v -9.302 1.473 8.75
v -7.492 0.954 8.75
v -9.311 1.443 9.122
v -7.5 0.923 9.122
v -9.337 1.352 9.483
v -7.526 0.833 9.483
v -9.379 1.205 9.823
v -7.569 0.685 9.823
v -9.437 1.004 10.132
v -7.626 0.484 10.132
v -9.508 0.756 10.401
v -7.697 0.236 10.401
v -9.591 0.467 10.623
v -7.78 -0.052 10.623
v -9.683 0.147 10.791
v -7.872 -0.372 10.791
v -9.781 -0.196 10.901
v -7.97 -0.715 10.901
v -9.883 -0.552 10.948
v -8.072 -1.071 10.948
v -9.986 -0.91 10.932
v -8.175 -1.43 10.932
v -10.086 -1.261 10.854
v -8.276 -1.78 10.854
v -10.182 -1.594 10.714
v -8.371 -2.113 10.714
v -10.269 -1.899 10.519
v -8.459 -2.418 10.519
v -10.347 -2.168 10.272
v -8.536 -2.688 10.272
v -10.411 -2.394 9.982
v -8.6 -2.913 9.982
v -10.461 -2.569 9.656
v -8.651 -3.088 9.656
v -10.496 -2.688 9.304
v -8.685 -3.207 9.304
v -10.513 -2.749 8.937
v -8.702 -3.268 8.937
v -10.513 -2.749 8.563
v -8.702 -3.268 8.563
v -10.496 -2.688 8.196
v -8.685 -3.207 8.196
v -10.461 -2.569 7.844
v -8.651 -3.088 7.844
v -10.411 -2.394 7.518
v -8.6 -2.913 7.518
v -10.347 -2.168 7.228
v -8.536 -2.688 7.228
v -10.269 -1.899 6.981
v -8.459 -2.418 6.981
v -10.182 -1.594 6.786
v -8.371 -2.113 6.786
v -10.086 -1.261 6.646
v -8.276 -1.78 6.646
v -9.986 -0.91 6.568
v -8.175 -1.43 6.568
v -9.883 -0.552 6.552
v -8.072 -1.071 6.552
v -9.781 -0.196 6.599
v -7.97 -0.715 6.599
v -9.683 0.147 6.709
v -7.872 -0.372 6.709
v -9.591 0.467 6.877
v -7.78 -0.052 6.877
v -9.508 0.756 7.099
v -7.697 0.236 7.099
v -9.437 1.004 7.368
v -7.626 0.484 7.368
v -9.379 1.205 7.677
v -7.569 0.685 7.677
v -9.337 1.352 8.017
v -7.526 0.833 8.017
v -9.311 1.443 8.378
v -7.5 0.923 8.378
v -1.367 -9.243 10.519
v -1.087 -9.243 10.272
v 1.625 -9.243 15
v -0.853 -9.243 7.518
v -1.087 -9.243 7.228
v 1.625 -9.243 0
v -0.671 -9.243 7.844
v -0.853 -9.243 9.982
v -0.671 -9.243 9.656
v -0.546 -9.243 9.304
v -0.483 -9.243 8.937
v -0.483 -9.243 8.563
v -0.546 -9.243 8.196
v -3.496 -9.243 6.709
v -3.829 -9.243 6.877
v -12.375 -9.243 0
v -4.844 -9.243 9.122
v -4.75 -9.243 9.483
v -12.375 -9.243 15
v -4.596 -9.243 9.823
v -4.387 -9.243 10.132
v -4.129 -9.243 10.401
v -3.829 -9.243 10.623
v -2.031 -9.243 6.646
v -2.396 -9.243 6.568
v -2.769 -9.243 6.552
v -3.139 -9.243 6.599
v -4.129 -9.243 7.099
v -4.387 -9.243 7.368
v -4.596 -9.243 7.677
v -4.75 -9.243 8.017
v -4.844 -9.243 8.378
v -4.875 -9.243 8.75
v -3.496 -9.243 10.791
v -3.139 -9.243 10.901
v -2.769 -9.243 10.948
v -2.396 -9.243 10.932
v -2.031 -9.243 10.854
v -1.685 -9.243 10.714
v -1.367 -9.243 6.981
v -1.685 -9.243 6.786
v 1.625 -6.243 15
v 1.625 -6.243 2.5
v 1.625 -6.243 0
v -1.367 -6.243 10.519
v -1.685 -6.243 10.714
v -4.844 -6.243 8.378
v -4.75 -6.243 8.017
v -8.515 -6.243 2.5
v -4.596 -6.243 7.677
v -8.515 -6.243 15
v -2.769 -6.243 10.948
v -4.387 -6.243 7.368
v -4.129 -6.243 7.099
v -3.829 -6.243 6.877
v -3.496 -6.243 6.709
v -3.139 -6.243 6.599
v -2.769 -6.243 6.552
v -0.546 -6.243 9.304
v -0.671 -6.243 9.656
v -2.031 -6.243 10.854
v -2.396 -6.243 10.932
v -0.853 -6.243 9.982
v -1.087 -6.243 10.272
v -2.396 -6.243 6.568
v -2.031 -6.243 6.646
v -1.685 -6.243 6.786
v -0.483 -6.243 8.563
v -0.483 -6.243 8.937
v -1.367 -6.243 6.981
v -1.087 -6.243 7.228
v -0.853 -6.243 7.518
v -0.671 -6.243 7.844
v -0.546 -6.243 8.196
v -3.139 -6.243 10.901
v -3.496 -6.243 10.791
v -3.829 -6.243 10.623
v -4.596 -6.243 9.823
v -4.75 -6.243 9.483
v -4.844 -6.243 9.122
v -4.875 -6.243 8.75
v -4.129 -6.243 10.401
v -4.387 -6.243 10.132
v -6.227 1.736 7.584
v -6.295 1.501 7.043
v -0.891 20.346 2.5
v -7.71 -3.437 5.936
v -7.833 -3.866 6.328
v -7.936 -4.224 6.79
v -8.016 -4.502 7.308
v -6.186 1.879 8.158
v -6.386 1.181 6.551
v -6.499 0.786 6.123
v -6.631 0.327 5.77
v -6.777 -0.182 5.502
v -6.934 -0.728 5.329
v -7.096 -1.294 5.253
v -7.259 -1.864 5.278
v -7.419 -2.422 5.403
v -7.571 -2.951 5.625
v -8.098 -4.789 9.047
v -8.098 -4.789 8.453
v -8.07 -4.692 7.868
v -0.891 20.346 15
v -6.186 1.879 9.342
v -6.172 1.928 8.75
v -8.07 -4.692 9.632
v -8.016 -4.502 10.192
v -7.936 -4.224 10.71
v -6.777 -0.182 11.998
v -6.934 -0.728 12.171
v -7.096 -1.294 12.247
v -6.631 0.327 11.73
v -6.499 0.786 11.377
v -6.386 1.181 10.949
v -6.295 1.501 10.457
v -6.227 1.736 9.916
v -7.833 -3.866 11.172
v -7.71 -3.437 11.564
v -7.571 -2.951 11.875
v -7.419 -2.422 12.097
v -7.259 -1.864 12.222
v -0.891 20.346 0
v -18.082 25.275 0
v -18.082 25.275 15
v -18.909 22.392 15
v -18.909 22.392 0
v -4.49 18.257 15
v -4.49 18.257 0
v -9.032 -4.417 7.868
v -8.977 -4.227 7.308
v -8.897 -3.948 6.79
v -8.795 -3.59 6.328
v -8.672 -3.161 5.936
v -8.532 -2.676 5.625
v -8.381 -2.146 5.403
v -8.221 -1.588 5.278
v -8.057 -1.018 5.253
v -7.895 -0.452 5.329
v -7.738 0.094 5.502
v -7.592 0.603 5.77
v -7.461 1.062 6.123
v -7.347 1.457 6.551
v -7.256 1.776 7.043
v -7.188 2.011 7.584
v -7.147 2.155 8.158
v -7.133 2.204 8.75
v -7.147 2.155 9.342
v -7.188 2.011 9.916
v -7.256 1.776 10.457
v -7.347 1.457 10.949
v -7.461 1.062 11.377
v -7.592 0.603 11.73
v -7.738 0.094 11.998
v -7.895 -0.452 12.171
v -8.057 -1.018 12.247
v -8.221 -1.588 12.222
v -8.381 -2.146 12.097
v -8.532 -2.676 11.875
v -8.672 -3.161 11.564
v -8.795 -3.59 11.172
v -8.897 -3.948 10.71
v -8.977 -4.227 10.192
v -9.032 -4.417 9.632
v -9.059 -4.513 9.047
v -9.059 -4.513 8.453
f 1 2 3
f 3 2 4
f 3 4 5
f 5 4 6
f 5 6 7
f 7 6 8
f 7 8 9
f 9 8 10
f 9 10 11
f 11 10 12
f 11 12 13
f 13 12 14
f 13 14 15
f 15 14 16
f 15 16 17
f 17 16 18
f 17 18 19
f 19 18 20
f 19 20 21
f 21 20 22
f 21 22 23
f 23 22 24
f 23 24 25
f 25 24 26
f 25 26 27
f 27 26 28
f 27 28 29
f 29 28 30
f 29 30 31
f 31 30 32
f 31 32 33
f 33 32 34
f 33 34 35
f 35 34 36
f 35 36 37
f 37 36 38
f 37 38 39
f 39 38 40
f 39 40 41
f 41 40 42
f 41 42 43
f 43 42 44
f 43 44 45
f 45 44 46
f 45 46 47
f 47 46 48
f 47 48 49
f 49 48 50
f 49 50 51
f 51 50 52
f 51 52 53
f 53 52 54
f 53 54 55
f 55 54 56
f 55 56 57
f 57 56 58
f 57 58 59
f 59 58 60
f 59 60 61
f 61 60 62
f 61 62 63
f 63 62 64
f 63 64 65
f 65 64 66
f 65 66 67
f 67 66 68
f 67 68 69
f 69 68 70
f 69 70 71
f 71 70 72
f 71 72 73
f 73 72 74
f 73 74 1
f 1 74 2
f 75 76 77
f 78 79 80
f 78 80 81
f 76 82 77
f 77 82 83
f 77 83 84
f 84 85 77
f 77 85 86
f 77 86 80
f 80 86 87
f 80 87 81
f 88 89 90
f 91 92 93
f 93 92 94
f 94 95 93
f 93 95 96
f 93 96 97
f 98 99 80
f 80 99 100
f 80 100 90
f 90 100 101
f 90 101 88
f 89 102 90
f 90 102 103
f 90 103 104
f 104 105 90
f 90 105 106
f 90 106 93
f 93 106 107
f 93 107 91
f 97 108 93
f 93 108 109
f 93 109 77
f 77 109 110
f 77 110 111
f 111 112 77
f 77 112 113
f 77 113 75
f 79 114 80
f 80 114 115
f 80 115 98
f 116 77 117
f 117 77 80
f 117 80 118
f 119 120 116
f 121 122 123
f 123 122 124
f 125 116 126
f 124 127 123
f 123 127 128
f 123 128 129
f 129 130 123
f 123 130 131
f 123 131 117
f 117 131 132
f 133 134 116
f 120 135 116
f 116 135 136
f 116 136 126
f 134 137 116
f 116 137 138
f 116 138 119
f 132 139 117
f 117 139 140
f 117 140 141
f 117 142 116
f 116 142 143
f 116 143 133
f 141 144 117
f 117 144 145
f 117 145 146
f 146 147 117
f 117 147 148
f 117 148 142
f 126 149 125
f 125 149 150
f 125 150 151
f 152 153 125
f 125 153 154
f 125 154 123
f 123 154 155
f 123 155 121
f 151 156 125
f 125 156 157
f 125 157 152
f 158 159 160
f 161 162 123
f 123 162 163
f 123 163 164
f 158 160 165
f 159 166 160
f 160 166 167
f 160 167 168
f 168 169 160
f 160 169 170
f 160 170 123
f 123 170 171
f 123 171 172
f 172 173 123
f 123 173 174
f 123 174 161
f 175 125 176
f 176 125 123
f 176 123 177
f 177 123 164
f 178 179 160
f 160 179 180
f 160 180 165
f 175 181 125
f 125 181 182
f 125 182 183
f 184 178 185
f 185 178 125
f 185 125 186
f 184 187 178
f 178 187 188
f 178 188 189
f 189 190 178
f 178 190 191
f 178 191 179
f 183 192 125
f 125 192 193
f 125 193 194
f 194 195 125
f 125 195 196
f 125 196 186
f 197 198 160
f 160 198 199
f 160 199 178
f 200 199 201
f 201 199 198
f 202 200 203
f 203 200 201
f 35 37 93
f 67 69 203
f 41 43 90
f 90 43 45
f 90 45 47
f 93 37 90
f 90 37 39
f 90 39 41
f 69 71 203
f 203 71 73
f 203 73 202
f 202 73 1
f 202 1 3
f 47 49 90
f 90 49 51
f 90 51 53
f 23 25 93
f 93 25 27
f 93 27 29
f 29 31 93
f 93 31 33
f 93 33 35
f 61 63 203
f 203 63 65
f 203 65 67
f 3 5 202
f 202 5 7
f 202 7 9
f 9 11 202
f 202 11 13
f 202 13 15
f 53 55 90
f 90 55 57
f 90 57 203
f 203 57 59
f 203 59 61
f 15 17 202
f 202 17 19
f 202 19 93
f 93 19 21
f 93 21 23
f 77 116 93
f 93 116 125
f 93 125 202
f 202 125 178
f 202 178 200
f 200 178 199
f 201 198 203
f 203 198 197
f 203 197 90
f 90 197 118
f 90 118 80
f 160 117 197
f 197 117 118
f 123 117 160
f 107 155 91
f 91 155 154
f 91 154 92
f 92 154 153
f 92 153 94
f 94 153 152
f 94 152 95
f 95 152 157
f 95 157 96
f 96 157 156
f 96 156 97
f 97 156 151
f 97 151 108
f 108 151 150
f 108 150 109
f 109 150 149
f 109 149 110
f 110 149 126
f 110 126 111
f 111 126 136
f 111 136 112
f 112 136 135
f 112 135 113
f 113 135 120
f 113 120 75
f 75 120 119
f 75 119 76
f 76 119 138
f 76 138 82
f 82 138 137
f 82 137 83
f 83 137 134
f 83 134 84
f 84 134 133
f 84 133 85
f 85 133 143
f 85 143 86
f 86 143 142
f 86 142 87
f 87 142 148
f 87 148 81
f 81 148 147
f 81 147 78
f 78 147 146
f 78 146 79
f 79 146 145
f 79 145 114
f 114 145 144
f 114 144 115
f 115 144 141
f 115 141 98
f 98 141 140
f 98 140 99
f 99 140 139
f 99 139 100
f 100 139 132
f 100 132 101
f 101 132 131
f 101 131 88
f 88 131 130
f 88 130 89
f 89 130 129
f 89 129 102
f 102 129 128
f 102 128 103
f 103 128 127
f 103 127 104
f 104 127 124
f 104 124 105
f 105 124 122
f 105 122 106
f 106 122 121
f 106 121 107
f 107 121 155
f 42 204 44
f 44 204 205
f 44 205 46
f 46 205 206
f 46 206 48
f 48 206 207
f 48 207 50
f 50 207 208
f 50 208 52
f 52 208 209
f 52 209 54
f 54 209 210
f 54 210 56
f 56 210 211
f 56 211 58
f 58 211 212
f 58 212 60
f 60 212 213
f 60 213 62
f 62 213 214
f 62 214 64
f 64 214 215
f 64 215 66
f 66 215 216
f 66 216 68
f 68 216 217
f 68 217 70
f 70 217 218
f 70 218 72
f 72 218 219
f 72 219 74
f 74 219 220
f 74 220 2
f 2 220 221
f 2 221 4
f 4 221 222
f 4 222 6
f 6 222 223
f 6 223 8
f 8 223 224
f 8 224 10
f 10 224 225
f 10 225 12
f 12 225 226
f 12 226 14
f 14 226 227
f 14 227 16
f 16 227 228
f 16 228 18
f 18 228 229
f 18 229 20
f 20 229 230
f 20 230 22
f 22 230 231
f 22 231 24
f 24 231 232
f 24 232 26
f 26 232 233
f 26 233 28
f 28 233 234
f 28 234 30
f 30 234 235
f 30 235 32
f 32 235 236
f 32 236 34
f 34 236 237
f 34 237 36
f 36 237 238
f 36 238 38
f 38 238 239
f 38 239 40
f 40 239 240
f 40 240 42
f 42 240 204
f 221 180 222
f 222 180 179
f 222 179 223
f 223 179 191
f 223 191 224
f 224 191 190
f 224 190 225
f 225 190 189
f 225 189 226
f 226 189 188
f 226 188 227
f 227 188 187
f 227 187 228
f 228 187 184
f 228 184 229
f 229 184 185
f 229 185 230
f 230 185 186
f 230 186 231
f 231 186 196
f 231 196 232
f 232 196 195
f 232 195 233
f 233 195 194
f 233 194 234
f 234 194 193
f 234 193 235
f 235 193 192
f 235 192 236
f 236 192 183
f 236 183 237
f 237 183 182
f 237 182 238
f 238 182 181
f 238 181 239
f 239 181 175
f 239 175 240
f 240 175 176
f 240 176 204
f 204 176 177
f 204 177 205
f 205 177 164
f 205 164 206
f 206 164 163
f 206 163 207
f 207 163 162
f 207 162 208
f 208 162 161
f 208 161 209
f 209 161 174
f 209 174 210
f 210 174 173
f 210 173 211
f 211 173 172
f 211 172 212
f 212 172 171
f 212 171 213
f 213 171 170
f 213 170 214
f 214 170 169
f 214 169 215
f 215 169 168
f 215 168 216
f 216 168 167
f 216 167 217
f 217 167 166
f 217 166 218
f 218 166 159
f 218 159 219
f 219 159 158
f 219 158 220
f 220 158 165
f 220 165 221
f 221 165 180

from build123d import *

# Parameters (mm, degrees)
DODANIE_WYCI_GNI_CIE1_DEPTH = 15
DODANIE_WYCI_GNI_CIE2_DEPTH = 2.5
SZKIC4_R                    = 2.2
WYTNIJ_WYCI_GNI_CIE1_DEPTH  = 10
SZKIC5_R                    = 2.2
WYTNIJ_WYCI_GNI_CIE2_DEPTH  = 10
SZKIC6_R                    = 3.5
WYTNIJ_WYCI_GNI_CIE3_DEPTH  = 1


with BuildPart() as part:
    # Szkic2 → Dodanie-wyciągnięcie1 (new body)
    with BuildSketch(Plane.XY):
        Polygon((-4.489744218, 18.257150965), (-12.375242327, -9.242849035), (1.624757673, -9.242849035), (1.624757673, -6.242849035), (-8.515006169, -6.242849035), (-0.890760007, 20.346057156), (-18.08175759, 25.27549639), (-18.908669657, 22.391711302), align=None)
    extrude(amount=DODANIE_WYCI_GNI_CIE1_DEPTH)

    # Szkic3 → Dodanie-wyciągnięcie2 (add)
    with BuildSketch(Plane(origin=(0, 0, 0), x_dir=(-1, 0, 0), z_dir=(0, 0, -1))):
        Polygon((0.890760007, 20.346057156), (-1.624757673, -6.242849035), (8.515006169, -6.242849035), align=None)
    extrude(amount=-DODANIE_WYCI_GNI_CIE2_DEPTH)

    # Szkic4 → Wytnij-wyciągnięcie1 (cut)
    with BuildSketch(Plane(origin=(0, -6.242849035, 0), x_dir=(1, 0, 0), z_dir=(0, 1, 0))):
        with Locations(Location((-2.675242327, -8.75, 0), (0, 0, 180))):
            Circle(SZKIC4_R)
    extrude(amount=-WYTNIJ_WYCI_GNI_CIE1_DEPTH, mode=Mode.SUBTRACT)

    # Szkic5 → Wytnij-wyciągnięcie2 (cut)
    with BuildSketch(Plane(origin=(-6.213967486, 1.781826504, 0), x_dir=(0, 0, -1), z_dir=(0.9612616959383198, -0.27563735581699605, 0))):
        with Locations(Location((-8.75, -3.348065436, 0), (0, 0, 90))):
            Circle(SZKIC5_R)
    extrude(amount=-WYTNIJ_WYCI_GNI_CIE2_DEPTH, mode=Mode.SUBTRACT)

    # Szkic6 → Wytnij-wyciągnięcie3 (cut)
    with BuildSketch(Plane(origin=(-6.213967486, 1.781826504, 0), x_dir=(0, 0, -1), z_dir=(0.9612616959383198, -0.27563735581699605, 0))):
        with Locations(Location((-8.75, -3.348065436, 0), (0, 0, 90))):
            Circle(SZKIC6_R)
    extrude(amount=-WYTNIJ_WYCI_GNI_CIE3_DEPTH, mode=Mode.SUBTRACT)


solid = part.part
